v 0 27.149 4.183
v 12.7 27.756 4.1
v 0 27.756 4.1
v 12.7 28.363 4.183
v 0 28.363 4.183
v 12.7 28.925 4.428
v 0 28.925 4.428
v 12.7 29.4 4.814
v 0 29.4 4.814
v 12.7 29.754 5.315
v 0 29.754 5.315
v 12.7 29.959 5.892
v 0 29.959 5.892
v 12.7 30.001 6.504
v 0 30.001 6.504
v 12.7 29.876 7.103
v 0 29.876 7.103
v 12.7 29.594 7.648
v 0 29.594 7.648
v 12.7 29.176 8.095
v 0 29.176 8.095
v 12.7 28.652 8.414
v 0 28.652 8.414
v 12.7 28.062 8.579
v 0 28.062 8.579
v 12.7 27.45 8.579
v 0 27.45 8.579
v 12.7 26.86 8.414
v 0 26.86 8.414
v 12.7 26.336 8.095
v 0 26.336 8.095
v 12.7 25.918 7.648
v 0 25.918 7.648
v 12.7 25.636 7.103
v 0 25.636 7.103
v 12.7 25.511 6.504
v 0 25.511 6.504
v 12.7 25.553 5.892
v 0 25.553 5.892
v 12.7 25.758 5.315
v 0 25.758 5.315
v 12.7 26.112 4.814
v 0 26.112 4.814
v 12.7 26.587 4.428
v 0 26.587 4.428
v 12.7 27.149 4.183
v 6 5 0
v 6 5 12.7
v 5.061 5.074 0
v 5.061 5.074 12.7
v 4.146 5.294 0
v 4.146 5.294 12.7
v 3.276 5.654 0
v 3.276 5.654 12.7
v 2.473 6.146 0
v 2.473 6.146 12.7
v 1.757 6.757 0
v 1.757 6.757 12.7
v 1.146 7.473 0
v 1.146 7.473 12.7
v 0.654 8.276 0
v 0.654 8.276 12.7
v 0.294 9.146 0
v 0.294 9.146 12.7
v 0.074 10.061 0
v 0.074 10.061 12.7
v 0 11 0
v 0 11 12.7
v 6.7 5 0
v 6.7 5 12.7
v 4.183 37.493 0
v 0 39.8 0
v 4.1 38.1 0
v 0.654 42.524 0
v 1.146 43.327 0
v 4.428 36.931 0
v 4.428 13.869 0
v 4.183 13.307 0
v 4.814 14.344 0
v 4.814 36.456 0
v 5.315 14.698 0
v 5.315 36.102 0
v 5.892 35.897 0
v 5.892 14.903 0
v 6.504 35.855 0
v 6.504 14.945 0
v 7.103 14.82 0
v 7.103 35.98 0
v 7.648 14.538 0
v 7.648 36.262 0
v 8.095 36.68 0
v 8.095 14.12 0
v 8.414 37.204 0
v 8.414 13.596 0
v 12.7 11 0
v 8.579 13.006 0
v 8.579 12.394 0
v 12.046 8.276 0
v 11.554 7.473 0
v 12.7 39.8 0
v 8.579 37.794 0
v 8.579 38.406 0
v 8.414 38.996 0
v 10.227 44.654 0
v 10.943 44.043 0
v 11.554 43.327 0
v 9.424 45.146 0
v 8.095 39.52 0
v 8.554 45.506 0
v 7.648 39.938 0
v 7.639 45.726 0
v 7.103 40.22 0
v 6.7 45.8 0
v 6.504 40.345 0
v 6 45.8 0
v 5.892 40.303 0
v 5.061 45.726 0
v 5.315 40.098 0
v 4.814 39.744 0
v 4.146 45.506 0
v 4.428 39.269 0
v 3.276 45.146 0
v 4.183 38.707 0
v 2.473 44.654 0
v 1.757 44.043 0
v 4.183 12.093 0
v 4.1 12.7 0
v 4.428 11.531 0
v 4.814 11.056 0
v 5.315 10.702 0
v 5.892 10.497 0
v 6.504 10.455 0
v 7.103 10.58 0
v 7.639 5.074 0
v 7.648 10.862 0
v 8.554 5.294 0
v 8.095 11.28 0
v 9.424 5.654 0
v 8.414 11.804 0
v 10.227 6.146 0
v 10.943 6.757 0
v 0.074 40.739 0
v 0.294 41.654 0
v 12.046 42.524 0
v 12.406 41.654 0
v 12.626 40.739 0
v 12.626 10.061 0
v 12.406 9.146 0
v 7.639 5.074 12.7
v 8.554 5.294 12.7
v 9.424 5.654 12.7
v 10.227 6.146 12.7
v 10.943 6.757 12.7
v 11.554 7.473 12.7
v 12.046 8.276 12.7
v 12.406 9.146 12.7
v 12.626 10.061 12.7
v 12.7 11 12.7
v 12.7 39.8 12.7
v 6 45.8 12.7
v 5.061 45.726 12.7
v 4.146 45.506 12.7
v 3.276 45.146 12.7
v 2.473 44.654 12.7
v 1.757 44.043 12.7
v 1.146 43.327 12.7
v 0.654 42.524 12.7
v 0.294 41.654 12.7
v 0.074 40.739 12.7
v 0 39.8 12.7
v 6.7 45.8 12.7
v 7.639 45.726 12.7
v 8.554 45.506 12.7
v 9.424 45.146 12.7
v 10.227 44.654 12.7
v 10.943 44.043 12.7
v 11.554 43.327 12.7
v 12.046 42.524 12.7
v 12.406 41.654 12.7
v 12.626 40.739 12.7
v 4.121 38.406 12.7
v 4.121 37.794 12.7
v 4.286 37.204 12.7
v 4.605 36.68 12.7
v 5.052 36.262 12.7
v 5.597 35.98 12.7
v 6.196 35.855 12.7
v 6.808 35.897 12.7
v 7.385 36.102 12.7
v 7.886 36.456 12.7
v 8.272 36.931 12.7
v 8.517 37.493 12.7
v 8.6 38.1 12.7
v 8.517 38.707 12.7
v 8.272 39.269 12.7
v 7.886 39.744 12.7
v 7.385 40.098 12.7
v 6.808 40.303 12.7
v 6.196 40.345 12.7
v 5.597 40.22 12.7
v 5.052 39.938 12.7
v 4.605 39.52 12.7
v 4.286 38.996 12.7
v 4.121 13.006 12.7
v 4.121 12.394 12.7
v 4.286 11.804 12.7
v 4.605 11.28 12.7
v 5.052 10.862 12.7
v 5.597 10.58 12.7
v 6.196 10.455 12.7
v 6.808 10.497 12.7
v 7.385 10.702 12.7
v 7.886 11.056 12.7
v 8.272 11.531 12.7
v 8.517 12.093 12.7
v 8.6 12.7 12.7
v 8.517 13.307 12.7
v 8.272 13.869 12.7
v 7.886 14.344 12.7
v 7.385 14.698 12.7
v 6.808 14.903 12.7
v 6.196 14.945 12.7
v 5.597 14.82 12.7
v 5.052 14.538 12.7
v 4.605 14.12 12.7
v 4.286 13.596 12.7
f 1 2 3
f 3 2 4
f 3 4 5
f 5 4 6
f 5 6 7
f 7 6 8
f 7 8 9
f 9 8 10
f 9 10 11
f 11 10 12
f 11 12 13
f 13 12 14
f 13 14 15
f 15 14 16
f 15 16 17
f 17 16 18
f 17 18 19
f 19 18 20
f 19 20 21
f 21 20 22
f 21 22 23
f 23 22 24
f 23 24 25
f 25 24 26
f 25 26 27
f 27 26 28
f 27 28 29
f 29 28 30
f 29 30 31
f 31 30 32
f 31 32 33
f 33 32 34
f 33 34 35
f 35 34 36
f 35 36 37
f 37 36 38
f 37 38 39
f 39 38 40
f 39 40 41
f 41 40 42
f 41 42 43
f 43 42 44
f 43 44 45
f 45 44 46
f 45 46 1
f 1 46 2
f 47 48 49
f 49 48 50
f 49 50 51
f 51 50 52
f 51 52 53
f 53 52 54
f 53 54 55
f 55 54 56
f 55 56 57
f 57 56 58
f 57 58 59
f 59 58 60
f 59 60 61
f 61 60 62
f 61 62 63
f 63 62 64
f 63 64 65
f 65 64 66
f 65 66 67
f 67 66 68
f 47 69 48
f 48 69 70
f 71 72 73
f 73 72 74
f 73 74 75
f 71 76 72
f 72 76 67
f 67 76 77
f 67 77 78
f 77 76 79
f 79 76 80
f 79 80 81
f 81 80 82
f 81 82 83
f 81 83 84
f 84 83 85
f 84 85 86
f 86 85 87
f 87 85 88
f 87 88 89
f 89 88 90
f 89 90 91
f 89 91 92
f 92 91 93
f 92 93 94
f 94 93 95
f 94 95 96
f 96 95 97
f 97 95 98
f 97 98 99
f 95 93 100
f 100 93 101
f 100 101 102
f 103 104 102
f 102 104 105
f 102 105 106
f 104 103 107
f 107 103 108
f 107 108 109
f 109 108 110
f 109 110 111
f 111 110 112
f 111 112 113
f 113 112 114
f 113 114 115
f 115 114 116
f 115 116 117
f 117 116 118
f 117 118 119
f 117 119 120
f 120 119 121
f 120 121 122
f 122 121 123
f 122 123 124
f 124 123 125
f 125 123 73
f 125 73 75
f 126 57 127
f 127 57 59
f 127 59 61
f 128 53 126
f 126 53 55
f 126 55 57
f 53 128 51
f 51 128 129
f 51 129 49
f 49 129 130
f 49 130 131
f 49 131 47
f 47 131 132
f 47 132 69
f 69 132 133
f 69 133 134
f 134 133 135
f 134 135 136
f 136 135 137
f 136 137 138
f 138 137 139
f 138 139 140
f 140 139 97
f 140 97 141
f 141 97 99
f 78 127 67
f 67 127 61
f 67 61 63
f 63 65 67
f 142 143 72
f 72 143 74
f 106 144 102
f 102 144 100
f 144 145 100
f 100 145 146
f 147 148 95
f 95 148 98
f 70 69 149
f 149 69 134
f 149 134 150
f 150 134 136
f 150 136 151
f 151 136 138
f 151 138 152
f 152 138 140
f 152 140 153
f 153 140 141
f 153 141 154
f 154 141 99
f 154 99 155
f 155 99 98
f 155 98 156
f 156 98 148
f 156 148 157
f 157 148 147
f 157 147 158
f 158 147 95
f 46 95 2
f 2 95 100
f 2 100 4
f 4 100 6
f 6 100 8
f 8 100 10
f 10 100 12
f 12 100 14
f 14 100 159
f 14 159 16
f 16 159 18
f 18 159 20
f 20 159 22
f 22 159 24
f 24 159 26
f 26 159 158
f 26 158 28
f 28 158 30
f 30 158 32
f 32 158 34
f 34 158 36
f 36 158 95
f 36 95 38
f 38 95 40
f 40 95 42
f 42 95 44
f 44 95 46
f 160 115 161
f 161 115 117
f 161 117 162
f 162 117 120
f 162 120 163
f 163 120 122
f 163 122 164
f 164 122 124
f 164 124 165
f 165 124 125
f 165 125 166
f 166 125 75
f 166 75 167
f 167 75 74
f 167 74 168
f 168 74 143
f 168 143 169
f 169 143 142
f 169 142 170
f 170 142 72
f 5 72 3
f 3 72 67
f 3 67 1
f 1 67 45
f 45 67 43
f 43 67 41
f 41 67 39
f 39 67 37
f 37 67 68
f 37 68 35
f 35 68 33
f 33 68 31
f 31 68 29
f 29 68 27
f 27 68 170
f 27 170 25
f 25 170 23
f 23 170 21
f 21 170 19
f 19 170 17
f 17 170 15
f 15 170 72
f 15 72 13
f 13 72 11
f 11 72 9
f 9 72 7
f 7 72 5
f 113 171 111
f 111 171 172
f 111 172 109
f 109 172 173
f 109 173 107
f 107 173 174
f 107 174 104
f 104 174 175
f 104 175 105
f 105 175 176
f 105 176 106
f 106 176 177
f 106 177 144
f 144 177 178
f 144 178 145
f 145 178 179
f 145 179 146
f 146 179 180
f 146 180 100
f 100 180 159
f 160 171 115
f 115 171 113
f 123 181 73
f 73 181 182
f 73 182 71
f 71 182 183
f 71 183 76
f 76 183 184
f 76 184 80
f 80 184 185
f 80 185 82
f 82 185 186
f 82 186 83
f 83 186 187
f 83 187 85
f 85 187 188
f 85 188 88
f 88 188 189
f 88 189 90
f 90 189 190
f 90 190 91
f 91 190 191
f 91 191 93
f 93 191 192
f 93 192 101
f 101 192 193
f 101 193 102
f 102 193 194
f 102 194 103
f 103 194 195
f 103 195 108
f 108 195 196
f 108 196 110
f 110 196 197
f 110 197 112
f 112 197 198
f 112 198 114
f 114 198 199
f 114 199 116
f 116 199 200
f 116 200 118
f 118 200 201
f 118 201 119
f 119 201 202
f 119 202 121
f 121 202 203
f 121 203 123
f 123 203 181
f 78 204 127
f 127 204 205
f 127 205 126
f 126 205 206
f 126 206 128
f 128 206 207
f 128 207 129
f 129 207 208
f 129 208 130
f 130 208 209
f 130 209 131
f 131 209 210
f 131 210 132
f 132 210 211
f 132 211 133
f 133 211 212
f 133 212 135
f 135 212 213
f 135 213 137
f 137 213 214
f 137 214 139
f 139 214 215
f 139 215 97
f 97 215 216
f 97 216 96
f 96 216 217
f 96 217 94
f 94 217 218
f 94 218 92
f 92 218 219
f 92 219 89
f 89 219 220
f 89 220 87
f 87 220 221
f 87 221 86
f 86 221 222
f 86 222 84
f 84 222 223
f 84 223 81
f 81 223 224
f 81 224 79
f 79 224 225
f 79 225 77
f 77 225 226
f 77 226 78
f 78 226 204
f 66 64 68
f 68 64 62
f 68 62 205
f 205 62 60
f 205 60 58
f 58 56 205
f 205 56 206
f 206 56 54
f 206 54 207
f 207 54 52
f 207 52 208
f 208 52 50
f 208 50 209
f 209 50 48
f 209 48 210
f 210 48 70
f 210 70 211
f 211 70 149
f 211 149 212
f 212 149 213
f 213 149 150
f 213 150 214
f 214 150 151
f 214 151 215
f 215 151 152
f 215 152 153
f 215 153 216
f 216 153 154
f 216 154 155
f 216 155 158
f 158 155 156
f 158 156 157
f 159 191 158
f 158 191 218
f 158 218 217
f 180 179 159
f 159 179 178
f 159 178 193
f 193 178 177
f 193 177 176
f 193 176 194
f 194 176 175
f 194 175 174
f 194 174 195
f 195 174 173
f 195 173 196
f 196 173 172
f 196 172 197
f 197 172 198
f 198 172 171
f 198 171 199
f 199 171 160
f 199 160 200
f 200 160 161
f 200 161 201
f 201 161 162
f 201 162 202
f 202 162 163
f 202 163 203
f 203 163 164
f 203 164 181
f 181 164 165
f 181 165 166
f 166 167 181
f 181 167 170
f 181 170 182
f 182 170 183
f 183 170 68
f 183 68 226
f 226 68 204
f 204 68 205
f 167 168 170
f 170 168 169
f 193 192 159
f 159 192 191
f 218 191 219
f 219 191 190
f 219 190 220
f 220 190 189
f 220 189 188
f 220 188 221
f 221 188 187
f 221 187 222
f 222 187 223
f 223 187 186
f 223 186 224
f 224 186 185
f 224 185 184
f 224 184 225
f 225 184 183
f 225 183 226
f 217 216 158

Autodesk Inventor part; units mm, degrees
ref_plane "YZ Plane" through (0, 0, 0) normal (1, 0, 0) x (0, 1, 0)
ref_plane "XZ Plane" through (0, 0, 0) normal (0, 1, 0) x (-1, 0, 0)
ref_plane "XY Plane" through (0, 0, 0) normal (0, 0, 1) x (1, 0, 0)
sketch "Sketch1" plane through (0, 0, 0) normal (0, 0, 1) x (1, 0, 0)
  line L0 (0, 0) -> (12.7, 0)
  line L1 (12.7, 0) -> (12.7, 50.8)
  line L2 (12.7, 50.8) -> (0, 50.8)
  line L3 (0, 50.8) -> (0, 0)
  dimension "d0" = 12.7
  dimension "d1" = 50.8
extrude "Extrusion1" add sketch "Sketch1" along normal blind 12.7
sketch "Sketch5" plane through (0, 0, 12.7) normal (0, 0, 1) x (1, 0, 0)
  line L0 (12.7, 0) -> (12.7, 50.8) projected
  line L1 (12.7, 50.8) -> (0, 50.8) projected
  line L2 (0, 0) -> (12.7, 0) projected
  point P0 (6.35, 38.1)
  point P1 (6.35, 12.7)
  point P2 (6.35, 50.8)
  dimension "d19" = 6.35
  dimension "d20" = 12.7
  dimension "d21" = 6.35
  dimension "d22" = 12.7
hole "Hole1" at (6.35, 38.1, 12.7) at (6.35, 12.7, 12.7) direction (0, 0, -1) diameter 4.5 end through all clearance for "Flat Head Machine Screw" size "M4" standard "Ansi Metric M Profile"
sketch "Sketch6" plane through (0, 0, 12.7) normal (0, 0, 1) x (1, 0, 0)
  line L0 (12.7, 50.8) -> (0, 50.8) projected
  line L1 (0, 50.8) -> (0, 45.8)
  line L2 (0, 50.8) -> (0, 0) projected
  line L3 (12.7, 0) -> (12.7, 50.8) projected
  line L4 (12.7, 45.8) -> (12.7, 50.8)
  line L5 (12.7, 50.8) -> (0, 50.8)
  line L6 (0, 45.8) -> (12.7, 45.8)
  dimension "d32" = 5
extrude "Extrusion4" cut sketch "Sketch6" against normal blind 12.7
sketch "Sketch7" plane through (0, 0, 12.7) normal (0, 0, 1) x (1, 0, 0)
  line L0 (0, 45.8) -> (0, 0) projected
  line L1 (0, 0) -> (0, 5)
  line L2 (12.7, 0) -> (12.7, 45.8) projected
  line L3 (12.7, 5) -> (12.7, 0)
  line L4 (0, 0) -> (12.7, 0) projected
  line L5 (12.7, 0) -> (0, 0)
  line L6 (0, 5) -> (12.7, 5)
  dimension "d35" = 5
extrude "Extrusion5" cut sketch "Sketch7" against normal blind 12.7
fillet "Fillet3" radius 6 2 edges at (12.7, 45.8, 6.35) (0, 45.8, 6.35)
fillet "Fillet4" radius 6 2 edges at (12.7, 5, 6.35) (0, 5, 6.35)
sketch "Sketch8" plane through (12.7, 39.8, 12.7) normal (1, 0, 0) x (0, 0, -1)
  circle A0 centre (6.35, -12.044) radius 2.25
  line L0 (12.7, -28.8) -> (12.7, 0) projected
  line L1 (12.7, -28.8) -> (0, -28.8) projected
  line L2 (0, -34.8) -> (12.7, -34.8) projected
  point P0 (12.7, -39.8)
  dimension "d43" = 6.35
  dimension "d44" = 4.5
  dimension "d49" = 16.756
extrude "Extrusion6" cut sketch "Sketch8" against normal blind 12.7
properties part number "Slider7"
